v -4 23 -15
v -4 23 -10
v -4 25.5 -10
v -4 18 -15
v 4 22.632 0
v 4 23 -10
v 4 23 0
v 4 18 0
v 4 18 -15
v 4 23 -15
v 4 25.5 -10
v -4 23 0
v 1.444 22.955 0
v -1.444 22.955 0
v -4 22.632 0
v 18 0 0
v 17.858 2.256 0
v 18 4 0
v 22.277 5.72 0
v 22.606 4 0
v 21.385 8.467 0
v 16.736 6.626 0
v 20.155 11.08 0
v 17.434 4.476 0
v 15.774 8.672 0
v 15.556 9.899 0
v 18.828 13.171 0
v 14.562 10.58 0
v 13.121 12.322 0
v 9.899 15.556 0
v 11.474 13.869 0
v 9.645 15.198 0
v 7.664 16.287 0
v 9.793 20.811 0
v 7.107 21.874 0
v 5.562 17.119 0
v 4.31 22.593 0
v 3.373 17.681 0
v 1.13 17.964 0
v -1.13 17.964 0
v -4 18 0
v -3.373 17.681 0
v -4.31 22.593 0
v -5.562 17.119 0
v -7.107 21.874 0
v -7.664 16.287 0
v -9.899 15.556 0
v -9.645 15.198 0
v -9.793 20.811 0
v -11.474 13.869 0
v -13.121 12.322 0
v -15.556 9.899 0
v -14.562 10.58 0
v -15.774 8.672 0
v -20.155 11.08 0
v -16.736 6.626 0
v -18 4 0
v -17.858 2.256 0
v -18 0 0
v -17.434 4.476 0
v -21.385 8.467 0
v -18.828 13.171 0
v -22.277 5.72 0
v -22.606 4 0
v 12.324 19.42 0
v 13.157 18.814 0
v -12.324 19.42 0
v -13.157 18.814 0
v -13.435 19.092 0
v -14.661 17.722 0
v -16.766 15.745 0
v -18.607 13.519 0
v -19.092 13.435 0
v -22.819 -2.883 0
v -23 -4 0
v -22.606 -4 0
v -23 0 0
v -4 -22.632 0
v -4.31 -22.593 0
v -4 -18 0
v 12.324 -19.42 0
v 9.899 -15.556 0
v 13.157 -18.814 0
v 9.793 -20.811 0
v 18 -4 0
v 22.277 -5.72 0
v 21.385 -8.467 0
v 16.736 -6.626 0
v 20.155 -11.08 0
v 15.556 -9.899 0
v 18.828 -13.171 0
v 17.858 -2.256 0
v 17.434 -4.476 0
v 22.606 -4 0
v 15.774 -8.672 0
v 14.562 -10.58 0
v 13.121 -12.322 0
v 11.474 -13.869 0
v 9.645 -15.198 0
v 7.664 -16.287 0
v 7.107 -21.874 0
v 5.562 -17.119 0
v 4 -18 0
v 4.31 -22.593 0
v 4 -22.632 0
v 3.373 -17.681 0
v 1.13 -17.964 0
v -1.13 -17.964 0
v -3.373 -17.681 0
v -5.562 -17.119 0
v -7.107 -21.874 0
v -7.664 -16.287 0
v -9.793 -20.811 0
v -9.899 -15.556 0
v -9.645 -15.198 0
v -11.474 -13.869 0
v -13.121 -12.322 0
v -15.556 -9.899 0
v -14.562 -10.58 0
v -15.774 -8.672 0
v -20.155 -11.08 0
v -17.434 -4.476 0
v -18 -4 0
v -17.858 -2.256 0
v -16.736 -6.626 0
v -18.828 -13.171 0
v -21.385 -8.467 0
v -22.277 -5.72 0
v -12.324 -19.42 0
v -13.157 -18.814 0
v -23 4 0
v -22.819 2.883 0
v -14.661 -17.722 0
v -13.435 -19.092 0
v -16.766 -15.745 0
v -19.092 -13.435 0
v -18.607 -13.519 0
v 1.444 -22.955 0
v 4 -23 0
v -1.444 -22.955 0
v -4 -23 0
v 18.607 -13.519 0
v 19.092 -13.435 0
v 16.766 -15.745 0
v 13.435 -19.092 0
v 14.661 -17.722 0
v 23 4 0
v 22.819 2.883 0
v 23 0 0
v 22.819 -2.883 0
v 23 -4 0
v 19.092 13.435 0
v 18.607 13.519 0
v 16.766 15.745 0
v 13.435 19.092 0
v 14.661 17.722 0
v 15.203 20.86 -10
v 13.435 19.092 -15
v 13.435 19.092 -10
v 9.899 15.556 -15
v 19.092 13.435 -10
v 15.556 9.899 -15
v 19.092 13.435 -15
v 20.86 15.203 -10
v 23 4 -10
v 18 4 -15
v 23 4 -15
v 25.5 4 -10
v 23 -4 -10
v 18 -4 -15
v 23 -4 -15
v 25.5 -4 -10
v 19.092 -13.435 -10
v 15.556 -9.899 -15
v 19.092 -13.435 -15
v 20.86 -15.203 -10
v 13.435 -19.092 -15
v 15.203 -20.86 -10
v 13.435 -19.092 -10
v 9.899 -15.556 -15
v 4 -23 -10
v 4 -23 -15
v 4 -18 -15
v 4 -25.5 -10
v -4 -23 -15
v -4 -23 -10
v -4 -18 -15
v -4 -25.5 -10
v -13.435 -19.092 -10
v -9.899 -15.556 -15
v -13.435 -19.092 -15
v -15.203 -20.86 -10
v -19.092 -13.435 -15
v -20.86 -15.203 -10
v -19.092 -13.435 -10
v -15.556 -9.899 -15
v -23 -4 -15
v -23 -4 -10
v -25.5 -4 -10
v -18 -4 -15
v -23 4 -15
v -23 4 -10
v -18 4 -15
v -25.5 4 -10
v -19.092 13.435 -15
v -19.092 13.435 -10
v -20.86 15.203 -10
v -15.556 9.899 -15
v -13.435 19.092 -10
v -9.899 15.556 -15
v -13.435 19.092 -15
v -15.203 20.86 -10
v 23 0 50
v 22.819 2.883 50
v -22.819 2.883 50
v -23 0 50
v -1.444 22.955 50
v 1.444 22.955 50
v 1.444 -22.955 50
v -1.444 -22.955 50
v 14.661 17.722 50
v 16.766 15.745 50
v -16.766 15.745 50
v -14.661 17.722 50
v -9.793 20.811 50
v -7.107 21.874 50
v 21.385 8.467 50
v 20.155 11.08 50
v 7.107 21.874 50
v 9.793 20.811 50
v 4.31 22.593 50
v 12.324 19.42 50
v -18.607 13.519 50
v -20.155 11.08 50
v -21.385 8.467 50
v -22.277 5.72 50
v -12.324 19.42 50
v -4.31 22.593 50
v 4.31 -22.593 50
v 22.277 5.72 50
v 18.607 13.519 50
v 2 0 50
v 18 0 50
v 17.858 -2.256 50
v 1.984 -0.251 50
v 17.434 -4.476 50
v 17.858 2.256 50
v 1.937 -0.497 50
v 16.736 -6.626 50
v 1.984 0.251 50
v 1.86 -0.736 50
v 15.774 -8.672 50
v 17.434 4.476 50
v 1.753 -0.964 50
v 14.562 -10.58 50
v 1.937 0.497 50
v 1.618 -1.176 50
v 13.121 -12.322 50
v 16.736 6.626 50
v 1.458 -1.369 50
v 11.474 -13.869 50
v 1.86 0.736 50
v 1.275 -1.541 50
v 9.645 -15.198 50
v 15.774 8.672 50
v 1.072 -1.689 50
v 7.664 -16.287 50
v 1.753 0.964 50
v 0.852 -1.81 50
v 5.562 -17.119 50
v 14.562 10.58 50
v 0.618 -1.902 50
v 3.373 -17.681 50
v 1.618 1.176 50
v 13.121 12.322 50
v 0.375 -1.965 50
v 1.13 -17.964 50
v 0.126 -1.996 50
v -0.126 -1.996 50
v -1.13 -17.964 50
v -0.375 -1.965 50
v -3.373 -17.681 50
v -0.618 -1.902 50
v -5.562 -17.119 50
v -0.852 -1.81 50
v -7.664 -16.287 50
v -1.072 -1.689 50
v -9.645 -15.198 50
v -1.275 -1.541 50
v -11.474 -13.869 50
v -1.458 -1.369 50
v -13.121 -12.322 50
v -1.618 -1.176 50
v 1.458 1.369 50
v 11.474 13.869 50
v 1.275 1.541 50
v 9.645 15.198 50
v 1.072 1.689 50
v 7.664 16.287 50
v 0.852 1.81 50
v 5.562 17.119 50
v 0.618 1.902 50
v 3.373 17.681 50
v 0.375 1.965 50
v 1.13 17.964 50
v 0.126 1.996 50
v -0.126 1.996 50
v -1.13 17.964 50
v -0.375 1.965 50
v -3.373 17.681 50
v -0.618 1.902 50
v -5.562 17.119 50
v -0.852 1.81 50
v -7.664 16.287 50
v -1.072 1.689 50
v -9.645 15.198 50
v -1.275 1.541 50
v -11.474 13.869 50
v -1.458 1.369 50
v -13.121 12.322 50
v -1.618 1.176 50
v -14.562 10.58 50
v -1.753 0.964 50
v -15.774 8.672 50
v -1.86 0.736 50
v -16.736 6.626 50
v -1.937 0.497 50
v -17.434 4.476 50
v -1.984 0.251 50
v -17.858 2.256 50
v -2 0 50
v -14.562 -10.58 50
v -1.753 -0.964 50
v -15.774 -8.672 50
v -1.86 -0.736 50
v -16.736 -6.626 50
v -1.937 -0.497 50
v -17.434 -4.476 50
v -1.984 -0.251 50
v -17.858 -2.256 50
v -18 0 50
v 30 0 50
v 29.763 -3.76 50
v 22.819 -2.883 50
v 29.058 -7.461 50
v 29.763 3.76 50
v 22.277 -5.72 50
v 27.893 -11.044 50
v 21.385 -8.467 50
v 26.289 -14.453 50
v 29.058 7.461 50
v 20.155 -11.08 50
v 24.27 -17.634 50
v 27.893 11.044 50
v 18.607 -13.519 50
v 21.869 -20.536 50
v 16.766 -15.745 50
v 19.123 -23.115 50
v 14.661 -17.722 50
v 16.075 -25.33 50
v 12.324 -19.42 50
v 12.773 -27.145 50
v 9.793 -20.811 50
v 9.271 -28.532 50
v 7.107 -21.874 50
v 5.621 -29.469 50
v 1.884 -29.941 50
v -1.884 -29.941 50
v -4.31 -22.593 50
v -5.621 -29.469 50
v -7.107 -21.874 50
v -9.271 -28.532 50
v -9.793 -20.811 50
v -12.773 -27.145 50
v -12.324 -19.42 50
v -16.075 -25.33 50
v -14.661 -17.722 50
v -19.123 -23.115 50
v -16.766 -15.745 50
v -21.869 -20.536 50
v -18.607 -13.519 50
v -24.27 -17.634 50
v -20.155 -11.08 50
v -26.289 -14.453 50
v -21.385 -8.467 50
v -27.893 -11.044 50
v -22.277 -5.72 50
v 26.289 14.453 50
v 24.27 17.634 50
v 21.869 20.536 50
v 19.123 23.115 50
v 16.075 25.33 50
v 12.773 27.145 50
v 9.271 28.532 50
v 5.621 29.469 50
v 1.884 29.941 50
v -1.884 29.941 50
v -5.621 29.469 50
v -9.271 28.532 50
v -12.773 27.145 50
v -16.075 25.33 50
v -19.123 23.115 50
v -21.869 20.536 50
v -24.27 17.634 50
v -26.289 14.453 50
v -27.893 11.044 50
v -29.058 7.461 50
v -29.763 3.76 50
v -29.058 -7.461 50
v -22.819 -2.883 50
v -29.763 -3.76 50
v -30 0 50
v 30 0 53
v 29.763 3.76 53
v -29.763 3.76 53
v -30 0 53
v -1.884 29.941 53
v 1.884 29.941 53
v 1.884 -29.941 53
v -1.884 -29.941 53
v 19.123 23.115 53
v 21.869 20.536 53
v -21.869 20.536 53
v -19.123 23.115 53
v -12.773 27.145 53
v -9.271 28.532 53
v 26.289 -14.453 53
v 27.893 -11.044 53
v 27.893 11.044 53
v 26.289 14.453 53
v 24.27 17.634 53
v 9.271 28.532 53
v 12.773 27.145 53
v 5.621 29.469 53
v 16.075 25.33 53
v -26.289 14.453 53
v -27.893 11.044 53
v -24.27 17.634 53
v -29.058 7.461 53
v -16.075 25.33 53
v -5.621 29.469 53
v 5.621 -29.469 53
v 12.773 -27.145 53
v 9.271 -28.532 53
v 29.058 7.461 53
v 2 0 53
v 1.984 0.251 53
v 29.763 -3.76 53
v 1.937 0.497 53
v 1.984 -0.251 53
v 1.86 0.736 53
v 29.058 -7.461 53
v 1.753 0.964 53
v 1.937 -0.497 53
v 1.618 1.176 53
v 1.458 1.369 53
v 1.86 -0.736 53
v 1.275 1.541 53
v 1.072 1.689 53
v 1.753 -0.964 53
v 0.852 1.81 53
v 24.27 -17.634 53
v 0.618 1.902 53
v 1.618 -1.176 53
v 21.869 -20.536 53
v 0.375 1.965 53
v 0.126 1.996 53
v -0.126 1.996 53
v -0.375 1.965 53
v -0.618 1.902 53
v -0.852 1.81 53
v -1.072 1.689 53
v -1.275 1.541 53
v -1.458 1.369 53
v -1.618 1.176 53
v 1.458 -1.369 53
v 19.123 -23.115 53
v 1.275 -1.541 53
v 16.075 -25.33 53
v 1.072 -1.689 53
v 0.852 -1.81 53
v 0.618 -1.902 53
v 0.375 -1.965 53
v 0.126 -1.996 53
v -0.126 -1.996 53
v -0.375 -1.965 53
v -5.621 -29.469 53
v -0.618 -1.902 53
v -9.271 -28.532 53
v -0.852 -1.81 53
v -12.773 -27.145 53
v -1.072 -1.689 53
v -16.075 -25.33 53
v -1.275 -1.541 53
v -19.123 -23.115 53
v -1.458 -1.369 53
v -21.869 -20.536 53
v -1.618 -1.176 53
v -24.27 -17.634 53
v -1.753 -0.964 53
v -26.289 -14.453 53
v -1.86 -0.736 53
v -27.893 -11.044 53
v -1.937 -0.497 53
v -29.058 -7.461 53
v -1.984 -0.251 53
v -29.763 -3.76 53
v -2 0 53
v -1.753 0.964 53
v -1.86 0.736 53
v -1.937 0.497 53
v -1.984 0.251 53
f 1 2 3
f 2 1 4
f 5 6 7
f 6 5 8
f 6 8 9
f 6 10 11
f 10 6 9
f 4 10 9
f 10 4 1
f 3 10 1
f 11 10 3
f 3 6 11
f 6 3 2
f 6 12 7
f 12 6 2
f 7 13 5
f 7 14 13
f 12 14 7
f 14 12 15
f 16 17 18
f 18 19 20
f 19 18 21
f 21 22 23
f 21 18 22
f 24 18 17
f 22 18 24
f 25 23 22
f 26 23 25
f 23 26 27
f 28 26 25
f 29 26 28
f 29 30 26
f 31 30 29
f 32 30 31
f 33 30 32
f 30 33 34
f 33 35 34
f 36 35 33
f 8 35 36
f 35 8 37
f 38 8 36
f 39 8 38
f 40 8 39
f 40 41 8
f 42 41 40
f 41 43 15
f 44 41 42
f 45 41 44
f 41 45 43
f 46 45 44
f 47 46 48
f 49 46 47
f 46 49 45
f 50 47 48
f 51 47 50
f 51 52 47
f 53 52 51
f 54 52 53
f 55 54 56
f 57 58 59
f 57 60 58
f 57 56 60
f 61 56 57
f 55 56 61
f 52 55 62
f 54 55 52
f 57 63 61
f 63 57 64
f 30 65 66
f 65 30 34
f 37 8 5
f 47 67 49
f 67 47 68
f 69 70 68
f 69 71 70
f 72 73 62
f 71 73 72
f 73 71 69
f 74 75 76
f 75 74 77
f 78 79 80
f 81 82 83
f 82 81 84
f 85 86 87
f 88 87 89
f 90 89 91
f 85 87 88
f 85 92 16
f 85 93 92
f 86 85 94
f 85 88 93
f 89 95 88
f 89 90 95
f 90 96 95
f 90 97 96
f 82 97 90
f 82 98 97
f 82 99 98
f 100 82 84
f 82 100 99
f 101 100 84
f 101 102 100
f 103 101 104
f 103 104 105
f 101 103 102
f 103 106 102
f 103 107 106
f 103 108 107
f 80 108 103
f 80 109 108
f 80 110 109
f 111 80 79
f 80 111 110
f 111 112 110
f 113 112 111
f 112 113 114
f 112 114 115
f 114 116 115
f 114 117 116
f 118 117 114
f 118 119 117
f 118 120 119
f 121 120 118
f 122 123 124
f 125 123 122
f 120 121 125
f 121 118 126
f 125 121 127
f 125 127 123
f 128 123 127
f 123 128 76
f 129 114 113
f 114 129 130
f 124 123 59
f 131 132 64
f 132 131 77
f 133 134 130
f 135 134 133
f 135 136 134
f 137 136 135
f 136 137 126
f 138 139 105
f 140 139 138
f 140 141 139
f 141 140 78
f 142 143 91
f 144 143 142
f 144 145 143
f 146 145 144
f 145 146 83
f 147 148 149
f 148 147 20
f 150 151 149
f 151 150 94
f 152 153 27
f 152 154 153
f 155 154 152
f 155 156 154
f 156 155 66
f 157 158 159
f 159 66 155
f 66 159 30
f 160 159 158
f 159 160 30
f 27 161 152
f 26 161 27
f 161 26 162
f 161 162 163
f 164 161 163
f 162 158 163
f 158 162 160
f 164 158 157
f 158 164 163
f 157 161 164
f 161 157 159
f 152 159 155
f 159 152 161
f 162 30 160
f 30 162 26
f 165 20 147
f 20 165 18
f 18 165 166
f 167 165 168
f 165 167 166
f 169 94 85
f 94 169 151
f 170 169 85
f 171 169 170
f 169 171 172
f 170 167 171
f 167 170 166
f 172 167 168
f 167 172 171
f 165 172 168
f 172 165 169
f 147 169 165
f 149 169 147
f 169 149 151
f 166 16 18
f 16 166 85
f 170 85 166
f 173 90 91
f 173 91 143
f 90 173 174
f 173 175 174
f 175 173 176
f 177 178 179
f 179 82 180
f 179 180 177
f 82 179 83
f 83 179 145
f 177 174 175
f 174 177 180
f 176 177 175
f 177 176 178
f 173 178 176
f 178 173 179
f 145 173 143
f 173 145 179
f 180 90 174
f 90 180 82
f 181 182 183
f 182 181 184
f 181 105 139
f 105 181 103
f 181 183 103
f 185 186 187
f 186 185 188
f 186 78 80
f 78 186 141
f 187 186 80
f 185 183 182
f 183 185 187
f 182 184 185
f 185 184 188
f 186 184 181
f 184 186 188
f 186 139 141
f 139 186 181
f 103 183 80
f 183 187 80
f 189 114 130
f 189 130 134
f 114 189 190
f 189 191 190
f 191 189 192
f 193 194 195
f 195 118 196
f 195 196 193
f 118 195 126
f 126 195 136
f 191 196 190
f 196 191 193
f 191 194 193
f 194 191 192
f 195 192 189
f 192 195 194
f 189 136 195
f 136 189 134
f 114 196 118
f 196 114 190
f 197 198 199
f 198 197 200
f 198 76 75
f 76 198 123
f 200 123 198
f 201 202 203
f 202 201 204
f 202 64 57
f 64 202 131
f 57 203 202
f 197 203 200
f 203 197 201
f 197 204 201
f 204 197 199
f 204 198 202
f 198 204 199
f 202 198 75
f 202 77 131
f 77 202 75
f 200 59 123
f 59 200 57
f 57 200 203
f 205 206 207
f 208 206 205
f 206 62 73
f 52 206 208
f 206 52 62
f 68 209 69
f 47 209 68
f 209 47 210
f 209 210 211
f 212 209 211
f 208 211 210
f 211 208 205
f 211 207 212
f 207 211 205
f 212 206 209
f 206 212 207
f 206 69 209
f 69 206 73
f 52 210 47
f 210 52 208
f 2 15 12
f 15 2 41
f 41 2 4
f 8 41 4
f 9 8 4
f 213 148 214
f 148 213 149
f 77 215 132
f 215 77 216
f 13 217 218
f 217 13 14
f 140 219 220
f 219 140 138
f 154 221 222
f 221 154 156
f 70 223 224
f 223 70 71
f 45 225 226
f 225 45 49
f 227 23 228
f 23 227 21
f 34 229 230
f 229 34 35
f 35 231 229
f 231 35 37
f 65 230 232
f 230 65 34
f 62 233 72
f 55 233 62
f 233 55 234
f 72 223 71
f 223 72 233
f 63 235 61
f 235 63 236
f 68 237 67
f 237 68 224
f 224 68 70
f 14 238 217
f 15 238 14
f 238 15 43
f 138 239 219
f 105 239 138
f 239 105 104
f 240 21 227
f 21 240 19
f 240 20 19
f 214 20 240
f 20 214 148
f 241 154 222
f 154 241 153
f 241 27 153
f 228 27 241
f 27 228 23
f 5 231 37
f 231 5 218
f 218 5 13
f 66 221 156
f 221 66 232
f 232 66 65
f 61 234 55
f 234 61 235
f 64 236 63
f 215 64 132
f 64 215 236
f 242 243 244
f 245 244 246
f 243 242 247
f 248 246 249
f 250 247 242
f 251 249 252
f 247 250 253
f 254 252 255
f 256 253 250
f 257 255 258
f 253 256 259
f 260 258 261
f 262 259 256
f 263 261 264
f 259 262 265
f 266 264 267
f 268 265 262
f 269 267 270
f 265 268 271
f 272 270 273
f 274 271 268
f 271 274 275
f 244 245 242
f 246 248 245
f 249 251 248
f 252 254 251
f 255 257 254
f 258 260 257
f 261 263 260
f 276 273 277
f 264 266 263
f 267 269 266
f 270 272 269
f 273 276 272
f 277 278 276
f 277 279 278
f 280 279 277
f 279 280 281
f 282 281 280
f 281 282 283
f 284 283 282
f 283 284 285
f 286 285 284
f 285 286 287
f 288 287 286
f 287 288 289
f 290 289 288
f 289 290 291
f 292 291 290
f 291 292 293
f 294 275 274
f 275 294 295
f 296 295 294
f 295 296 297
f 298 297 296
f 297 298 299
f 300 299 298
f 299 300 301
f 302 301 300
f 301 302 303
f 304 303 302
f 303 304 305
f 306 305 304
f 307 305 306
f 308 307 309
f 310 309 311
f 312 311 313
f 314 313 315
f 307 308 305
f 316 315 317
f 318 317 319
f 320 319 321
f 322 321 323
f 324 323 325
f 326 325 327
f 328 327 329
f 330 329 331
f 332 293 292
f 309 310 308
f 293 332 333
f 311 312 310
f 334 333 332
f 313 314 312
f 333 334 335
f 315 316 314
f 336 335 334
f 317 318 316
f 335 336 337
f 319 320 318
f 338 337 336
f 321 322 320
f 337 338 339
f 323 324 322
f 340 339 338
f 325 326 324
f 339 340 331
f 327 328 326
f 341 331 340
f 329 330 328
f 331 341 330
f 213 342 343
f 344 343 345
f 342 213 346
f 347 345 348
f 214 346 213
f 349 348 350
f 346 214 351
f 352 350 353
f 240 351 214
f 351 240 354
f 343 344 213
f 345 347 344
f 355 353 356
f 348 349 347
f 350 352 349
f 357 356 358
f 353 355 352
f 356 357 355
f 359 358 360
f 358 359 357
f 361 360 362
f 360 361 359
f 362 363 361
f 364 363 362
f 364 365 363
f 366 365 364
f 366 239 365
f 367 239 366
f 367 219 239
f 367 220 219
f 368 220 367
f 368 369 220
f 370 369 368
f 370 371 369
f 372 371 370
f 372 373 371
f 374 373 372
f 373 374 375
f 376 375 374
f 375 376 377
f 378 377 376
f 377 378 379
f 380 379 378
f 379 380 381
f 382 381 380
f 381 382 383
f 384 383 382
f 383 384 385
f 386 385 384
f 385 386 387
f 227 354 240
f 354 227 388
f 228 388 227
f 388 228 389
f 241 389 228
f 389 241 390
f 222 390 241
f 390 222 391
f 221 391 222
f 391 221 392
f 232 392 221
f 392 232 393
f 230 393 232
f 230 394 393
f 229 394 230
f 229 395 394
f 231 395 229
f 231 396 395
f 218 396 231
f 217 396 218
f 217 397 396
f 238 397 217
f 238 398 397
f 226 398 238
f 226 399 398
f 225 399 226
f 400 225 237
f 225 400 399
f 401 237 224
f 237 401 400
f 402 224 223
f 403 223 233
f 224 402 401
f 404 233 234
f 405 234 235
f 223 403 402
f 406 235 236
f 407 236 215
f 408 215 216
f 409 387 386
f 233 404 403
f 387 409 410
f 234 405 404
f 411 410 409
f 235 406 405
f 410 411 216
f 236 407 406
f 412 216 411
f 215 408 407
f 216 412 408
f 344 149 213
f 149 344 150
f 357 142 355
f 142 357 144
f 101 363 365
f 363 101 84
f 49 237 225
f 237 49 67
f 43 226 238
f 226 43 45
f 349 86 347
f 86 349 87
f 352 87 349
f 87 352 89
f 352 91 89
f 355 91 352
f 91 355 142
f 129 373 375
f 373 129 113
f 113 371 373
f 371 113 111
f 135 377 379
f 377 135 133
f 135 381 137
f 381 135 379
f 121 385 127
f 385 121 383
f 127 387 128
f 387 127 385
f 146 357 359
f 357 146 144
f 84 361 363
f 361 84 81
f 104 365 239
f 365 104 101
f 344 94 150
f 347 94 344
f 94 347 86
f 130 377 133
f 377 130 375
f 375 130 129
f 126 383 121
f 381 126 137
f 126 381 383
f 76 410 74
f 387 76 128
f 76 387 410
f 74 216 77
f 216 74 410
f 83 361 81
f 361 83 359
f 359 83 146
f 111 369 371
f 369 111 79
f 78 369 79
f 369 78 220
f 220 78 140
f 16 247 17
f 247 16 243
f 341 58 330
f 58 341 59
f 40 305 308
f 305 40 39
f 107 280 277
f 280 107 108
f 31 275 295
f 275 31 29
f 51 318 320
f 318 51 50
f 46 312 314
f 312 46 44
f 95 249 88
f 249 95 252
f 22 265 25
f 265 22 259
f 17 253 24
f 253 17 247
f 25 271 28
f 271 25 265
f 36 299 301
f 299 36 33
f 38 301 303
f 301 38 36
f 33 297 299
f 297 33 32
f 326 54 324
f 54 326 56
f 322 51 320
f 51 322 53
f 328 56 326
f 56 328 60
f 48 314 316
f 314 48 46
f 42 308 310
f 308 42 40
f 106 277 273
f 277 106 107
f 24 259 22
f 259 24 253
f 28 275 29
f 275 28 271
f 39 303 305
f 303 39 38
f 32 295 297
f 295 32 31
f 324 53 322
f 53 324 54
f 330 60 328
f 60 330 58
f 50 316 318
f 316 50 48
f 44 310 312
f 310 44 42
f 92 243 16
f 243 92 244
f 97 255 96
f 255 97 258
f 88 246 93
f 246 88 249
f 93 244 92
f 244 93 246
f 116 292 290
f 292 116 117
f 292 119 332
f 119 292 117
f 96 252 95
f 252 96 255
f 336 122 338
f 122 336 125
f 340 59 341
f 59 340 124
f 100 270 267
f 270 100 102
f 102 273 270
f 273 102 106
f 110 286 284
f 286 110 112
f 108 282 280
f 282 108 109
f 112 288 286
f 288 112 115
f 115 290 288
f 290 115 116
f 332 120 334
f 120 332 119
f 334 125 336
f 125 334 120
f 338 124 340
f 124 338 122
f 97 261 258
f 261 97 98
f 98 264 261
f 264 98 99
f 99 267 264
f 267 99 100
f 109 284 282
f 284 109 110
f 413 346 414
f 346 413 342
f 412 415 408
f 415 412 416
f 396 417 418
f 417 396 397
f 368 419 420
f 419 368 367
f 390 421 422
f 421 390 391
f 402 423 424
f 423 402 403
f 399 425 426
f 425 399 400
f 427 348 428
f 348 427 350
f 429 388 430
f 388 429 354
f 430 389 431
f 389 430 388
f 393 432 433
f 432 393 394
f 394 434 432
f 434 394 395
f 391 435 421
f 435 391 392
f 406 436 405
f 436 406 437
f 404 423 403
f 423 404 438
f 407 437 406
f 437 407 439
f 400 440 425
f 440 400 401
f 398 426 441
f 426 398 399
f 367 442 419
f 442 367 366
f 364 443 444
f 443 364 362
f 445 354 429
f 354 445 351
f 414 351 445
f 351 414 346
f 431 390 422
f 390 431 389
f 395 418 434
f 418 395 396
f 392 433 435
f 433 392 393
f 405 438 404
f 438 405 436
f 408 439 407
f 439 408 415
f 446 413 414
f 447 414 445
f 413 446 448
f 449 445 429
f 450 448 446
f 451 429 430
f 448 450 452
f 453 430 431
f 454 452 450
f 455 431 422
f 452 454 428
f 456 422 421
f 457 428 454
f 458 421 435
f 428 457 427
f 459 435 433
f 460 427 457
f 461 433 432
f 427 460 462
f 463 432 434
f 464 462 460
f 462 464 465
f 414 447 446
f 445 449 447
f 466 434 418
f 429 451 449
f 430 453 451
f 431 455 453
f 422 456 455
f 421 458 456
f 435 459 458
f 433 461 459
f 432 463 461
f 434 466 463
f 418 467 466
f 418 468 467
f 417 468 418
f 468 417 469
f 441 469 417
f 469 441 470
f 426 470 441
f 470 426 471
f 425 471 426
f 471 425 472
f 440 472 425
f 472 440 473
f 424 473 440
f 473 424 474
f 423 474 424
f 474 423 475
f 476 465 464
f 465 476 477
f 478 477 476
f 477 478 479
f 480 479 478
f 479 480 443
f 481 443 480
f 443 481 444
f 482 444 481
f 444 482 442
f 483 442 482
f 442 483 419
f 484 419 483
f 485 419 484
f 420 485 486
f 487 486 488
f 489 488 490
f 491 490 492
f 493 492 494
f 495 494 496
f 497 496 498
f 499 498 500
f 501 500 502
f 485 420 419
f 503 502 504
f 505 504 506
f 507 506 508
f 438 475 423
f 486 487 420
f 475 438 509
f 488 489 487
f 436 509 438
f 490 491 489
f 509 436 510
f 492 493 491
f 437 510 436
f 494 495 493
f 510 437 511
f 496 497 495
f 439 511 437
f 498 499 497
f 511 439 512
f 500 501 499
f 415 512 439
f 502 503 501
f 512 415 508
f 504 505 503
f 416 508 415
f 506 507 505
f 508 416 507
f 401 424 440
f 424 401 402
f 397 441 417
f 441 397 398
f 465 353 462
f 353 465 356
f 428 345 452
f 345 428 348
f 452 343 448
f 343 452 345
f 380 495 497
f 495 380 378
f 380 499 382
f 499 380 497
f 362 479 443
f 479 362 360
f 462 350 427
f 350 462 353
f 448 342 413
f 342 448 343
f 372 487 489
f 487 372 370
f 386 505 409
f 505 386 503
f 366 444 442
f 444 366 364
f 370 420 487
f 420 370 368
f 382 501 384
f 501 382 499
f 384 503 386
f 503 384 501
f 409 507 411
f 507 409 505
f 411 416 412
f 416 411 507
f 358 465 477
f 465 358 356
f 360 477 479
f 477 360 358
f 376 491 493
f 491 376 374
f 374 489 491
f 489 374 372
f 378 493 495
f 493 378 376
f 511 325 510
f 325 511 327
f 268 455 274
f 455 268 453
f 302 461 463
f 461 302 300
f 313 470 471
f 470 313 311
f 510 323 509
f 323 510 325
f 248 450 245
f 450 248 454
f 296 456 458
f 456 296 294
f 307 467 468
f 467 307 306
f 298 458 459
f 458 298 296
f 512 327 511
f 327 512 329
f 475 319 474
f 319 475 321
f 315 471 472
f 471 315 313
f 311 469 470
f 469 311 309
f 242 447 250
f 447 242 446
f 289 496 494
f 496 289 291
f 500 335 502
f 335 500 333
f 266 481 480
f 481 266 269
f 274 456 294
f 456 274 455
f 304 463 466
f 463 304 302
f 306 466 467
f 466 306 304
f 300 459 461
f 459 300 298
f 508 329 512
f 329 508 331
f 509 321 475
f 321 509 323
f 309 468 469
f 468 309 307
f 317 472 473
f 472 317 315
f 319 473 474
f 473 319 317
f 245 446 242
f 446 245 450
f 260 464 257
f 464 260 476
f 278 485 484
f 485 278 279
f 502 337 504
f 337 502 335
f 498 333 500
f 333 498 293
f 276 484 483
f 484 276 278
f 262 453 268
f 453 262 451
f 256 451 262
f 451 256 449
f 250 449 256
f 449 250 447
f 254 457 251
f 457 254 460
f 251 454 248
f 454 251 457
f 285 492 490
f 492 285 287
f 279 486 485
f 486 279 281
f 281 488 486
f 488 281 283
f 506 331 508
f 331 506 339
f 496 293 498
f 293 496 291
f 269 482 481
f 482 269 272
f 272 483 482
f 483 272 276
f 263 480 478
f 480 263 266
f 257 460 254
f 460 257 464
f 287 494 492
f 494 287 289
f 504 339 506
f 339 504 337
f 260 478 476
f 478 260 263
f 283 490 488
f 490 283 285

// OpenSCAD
// file: basic_latch.scad
module latch( base_width=5, latch_width=15, base_height=10, latch_height=5, latch_angle=10)
{
    //here we draw 2d latch using parameters
    dots = [
        // first dot is zero
        [0,0],
        // then we go forward on x axis 
        // for the base width
        [base_width,0],
        // Up to the upper corner
        // from opposite corner of latch
        [base_width, base_height+latch_height],
        
        //to the angle of the latch
        [0, base_height+latch_height],
    
        //and to to the latch corner dot
        //simplest ever trigonomtry is used here
        //width of the latch itself is it's
        //height times sin(it's angle in degrees)
        [ -latch_height*sin(latch_angle),base_height ],
        // corner
        [ 0,base_height]
    ];
    //extrude it to desired latch width
    translate([-latch_width/2,0,0])
    rotate([90,0,90])
    linear_extrude(latch_width)
        polygon(dots);
}

latch();
// file: circular_latches.scad
use <basic_latch.scad>
$fn=100;
module circular_latches(radius=50, count=5, arc=360,  base_width=5, latch_width=15, base_height=10, latch_height=5, latch_angle=10 , latch_rotate=[0,0,0]) {
   step = arc/count;
   union()
   for(i = [0:step:arc]) {
       x=sin(i)*radius; y=cos(i)*radius;
       translate([x,y,0])
         rotate([0,0,-i])
         rotate(latch_rotate)
         latch(base_width,latch_width,base_height,latch_height,latch_angle);
   }
}

difference() {
    union(){
        circular_latches(radius=15.5/2, base_width=2, latch_width=3, base_height=8, latch_height=2, latch_angle=40);
        rotate([0,180,0])
        cylinder(d1=15.5+4,d2 =15, h=5);
        cylinder(d=15.5+4,h=1);
    }
    translate([0,0,-5])
    rotate([90,0,0])

    difference() {    

        cylinder(d=3,h=1);
        translate([0,0,-0.5])
        cylinder(d=1.5,h=2);
    }
}
// main file
use <circular_latches.scad>
$fn=50;
translate([0,0,50])
difference(){ 
    cylinder(d=60, h=3);
    cylinder(d=4,h=3);
}
difference() {
cylinder(d=46,h=50)
translate([0,0,-1]);
    cylinder(d=36,h=62);
    
}
circular_latches(radius=23, count=8, latch_angle=30, latch_width=8, latch_rotate = [180,0,0]);
